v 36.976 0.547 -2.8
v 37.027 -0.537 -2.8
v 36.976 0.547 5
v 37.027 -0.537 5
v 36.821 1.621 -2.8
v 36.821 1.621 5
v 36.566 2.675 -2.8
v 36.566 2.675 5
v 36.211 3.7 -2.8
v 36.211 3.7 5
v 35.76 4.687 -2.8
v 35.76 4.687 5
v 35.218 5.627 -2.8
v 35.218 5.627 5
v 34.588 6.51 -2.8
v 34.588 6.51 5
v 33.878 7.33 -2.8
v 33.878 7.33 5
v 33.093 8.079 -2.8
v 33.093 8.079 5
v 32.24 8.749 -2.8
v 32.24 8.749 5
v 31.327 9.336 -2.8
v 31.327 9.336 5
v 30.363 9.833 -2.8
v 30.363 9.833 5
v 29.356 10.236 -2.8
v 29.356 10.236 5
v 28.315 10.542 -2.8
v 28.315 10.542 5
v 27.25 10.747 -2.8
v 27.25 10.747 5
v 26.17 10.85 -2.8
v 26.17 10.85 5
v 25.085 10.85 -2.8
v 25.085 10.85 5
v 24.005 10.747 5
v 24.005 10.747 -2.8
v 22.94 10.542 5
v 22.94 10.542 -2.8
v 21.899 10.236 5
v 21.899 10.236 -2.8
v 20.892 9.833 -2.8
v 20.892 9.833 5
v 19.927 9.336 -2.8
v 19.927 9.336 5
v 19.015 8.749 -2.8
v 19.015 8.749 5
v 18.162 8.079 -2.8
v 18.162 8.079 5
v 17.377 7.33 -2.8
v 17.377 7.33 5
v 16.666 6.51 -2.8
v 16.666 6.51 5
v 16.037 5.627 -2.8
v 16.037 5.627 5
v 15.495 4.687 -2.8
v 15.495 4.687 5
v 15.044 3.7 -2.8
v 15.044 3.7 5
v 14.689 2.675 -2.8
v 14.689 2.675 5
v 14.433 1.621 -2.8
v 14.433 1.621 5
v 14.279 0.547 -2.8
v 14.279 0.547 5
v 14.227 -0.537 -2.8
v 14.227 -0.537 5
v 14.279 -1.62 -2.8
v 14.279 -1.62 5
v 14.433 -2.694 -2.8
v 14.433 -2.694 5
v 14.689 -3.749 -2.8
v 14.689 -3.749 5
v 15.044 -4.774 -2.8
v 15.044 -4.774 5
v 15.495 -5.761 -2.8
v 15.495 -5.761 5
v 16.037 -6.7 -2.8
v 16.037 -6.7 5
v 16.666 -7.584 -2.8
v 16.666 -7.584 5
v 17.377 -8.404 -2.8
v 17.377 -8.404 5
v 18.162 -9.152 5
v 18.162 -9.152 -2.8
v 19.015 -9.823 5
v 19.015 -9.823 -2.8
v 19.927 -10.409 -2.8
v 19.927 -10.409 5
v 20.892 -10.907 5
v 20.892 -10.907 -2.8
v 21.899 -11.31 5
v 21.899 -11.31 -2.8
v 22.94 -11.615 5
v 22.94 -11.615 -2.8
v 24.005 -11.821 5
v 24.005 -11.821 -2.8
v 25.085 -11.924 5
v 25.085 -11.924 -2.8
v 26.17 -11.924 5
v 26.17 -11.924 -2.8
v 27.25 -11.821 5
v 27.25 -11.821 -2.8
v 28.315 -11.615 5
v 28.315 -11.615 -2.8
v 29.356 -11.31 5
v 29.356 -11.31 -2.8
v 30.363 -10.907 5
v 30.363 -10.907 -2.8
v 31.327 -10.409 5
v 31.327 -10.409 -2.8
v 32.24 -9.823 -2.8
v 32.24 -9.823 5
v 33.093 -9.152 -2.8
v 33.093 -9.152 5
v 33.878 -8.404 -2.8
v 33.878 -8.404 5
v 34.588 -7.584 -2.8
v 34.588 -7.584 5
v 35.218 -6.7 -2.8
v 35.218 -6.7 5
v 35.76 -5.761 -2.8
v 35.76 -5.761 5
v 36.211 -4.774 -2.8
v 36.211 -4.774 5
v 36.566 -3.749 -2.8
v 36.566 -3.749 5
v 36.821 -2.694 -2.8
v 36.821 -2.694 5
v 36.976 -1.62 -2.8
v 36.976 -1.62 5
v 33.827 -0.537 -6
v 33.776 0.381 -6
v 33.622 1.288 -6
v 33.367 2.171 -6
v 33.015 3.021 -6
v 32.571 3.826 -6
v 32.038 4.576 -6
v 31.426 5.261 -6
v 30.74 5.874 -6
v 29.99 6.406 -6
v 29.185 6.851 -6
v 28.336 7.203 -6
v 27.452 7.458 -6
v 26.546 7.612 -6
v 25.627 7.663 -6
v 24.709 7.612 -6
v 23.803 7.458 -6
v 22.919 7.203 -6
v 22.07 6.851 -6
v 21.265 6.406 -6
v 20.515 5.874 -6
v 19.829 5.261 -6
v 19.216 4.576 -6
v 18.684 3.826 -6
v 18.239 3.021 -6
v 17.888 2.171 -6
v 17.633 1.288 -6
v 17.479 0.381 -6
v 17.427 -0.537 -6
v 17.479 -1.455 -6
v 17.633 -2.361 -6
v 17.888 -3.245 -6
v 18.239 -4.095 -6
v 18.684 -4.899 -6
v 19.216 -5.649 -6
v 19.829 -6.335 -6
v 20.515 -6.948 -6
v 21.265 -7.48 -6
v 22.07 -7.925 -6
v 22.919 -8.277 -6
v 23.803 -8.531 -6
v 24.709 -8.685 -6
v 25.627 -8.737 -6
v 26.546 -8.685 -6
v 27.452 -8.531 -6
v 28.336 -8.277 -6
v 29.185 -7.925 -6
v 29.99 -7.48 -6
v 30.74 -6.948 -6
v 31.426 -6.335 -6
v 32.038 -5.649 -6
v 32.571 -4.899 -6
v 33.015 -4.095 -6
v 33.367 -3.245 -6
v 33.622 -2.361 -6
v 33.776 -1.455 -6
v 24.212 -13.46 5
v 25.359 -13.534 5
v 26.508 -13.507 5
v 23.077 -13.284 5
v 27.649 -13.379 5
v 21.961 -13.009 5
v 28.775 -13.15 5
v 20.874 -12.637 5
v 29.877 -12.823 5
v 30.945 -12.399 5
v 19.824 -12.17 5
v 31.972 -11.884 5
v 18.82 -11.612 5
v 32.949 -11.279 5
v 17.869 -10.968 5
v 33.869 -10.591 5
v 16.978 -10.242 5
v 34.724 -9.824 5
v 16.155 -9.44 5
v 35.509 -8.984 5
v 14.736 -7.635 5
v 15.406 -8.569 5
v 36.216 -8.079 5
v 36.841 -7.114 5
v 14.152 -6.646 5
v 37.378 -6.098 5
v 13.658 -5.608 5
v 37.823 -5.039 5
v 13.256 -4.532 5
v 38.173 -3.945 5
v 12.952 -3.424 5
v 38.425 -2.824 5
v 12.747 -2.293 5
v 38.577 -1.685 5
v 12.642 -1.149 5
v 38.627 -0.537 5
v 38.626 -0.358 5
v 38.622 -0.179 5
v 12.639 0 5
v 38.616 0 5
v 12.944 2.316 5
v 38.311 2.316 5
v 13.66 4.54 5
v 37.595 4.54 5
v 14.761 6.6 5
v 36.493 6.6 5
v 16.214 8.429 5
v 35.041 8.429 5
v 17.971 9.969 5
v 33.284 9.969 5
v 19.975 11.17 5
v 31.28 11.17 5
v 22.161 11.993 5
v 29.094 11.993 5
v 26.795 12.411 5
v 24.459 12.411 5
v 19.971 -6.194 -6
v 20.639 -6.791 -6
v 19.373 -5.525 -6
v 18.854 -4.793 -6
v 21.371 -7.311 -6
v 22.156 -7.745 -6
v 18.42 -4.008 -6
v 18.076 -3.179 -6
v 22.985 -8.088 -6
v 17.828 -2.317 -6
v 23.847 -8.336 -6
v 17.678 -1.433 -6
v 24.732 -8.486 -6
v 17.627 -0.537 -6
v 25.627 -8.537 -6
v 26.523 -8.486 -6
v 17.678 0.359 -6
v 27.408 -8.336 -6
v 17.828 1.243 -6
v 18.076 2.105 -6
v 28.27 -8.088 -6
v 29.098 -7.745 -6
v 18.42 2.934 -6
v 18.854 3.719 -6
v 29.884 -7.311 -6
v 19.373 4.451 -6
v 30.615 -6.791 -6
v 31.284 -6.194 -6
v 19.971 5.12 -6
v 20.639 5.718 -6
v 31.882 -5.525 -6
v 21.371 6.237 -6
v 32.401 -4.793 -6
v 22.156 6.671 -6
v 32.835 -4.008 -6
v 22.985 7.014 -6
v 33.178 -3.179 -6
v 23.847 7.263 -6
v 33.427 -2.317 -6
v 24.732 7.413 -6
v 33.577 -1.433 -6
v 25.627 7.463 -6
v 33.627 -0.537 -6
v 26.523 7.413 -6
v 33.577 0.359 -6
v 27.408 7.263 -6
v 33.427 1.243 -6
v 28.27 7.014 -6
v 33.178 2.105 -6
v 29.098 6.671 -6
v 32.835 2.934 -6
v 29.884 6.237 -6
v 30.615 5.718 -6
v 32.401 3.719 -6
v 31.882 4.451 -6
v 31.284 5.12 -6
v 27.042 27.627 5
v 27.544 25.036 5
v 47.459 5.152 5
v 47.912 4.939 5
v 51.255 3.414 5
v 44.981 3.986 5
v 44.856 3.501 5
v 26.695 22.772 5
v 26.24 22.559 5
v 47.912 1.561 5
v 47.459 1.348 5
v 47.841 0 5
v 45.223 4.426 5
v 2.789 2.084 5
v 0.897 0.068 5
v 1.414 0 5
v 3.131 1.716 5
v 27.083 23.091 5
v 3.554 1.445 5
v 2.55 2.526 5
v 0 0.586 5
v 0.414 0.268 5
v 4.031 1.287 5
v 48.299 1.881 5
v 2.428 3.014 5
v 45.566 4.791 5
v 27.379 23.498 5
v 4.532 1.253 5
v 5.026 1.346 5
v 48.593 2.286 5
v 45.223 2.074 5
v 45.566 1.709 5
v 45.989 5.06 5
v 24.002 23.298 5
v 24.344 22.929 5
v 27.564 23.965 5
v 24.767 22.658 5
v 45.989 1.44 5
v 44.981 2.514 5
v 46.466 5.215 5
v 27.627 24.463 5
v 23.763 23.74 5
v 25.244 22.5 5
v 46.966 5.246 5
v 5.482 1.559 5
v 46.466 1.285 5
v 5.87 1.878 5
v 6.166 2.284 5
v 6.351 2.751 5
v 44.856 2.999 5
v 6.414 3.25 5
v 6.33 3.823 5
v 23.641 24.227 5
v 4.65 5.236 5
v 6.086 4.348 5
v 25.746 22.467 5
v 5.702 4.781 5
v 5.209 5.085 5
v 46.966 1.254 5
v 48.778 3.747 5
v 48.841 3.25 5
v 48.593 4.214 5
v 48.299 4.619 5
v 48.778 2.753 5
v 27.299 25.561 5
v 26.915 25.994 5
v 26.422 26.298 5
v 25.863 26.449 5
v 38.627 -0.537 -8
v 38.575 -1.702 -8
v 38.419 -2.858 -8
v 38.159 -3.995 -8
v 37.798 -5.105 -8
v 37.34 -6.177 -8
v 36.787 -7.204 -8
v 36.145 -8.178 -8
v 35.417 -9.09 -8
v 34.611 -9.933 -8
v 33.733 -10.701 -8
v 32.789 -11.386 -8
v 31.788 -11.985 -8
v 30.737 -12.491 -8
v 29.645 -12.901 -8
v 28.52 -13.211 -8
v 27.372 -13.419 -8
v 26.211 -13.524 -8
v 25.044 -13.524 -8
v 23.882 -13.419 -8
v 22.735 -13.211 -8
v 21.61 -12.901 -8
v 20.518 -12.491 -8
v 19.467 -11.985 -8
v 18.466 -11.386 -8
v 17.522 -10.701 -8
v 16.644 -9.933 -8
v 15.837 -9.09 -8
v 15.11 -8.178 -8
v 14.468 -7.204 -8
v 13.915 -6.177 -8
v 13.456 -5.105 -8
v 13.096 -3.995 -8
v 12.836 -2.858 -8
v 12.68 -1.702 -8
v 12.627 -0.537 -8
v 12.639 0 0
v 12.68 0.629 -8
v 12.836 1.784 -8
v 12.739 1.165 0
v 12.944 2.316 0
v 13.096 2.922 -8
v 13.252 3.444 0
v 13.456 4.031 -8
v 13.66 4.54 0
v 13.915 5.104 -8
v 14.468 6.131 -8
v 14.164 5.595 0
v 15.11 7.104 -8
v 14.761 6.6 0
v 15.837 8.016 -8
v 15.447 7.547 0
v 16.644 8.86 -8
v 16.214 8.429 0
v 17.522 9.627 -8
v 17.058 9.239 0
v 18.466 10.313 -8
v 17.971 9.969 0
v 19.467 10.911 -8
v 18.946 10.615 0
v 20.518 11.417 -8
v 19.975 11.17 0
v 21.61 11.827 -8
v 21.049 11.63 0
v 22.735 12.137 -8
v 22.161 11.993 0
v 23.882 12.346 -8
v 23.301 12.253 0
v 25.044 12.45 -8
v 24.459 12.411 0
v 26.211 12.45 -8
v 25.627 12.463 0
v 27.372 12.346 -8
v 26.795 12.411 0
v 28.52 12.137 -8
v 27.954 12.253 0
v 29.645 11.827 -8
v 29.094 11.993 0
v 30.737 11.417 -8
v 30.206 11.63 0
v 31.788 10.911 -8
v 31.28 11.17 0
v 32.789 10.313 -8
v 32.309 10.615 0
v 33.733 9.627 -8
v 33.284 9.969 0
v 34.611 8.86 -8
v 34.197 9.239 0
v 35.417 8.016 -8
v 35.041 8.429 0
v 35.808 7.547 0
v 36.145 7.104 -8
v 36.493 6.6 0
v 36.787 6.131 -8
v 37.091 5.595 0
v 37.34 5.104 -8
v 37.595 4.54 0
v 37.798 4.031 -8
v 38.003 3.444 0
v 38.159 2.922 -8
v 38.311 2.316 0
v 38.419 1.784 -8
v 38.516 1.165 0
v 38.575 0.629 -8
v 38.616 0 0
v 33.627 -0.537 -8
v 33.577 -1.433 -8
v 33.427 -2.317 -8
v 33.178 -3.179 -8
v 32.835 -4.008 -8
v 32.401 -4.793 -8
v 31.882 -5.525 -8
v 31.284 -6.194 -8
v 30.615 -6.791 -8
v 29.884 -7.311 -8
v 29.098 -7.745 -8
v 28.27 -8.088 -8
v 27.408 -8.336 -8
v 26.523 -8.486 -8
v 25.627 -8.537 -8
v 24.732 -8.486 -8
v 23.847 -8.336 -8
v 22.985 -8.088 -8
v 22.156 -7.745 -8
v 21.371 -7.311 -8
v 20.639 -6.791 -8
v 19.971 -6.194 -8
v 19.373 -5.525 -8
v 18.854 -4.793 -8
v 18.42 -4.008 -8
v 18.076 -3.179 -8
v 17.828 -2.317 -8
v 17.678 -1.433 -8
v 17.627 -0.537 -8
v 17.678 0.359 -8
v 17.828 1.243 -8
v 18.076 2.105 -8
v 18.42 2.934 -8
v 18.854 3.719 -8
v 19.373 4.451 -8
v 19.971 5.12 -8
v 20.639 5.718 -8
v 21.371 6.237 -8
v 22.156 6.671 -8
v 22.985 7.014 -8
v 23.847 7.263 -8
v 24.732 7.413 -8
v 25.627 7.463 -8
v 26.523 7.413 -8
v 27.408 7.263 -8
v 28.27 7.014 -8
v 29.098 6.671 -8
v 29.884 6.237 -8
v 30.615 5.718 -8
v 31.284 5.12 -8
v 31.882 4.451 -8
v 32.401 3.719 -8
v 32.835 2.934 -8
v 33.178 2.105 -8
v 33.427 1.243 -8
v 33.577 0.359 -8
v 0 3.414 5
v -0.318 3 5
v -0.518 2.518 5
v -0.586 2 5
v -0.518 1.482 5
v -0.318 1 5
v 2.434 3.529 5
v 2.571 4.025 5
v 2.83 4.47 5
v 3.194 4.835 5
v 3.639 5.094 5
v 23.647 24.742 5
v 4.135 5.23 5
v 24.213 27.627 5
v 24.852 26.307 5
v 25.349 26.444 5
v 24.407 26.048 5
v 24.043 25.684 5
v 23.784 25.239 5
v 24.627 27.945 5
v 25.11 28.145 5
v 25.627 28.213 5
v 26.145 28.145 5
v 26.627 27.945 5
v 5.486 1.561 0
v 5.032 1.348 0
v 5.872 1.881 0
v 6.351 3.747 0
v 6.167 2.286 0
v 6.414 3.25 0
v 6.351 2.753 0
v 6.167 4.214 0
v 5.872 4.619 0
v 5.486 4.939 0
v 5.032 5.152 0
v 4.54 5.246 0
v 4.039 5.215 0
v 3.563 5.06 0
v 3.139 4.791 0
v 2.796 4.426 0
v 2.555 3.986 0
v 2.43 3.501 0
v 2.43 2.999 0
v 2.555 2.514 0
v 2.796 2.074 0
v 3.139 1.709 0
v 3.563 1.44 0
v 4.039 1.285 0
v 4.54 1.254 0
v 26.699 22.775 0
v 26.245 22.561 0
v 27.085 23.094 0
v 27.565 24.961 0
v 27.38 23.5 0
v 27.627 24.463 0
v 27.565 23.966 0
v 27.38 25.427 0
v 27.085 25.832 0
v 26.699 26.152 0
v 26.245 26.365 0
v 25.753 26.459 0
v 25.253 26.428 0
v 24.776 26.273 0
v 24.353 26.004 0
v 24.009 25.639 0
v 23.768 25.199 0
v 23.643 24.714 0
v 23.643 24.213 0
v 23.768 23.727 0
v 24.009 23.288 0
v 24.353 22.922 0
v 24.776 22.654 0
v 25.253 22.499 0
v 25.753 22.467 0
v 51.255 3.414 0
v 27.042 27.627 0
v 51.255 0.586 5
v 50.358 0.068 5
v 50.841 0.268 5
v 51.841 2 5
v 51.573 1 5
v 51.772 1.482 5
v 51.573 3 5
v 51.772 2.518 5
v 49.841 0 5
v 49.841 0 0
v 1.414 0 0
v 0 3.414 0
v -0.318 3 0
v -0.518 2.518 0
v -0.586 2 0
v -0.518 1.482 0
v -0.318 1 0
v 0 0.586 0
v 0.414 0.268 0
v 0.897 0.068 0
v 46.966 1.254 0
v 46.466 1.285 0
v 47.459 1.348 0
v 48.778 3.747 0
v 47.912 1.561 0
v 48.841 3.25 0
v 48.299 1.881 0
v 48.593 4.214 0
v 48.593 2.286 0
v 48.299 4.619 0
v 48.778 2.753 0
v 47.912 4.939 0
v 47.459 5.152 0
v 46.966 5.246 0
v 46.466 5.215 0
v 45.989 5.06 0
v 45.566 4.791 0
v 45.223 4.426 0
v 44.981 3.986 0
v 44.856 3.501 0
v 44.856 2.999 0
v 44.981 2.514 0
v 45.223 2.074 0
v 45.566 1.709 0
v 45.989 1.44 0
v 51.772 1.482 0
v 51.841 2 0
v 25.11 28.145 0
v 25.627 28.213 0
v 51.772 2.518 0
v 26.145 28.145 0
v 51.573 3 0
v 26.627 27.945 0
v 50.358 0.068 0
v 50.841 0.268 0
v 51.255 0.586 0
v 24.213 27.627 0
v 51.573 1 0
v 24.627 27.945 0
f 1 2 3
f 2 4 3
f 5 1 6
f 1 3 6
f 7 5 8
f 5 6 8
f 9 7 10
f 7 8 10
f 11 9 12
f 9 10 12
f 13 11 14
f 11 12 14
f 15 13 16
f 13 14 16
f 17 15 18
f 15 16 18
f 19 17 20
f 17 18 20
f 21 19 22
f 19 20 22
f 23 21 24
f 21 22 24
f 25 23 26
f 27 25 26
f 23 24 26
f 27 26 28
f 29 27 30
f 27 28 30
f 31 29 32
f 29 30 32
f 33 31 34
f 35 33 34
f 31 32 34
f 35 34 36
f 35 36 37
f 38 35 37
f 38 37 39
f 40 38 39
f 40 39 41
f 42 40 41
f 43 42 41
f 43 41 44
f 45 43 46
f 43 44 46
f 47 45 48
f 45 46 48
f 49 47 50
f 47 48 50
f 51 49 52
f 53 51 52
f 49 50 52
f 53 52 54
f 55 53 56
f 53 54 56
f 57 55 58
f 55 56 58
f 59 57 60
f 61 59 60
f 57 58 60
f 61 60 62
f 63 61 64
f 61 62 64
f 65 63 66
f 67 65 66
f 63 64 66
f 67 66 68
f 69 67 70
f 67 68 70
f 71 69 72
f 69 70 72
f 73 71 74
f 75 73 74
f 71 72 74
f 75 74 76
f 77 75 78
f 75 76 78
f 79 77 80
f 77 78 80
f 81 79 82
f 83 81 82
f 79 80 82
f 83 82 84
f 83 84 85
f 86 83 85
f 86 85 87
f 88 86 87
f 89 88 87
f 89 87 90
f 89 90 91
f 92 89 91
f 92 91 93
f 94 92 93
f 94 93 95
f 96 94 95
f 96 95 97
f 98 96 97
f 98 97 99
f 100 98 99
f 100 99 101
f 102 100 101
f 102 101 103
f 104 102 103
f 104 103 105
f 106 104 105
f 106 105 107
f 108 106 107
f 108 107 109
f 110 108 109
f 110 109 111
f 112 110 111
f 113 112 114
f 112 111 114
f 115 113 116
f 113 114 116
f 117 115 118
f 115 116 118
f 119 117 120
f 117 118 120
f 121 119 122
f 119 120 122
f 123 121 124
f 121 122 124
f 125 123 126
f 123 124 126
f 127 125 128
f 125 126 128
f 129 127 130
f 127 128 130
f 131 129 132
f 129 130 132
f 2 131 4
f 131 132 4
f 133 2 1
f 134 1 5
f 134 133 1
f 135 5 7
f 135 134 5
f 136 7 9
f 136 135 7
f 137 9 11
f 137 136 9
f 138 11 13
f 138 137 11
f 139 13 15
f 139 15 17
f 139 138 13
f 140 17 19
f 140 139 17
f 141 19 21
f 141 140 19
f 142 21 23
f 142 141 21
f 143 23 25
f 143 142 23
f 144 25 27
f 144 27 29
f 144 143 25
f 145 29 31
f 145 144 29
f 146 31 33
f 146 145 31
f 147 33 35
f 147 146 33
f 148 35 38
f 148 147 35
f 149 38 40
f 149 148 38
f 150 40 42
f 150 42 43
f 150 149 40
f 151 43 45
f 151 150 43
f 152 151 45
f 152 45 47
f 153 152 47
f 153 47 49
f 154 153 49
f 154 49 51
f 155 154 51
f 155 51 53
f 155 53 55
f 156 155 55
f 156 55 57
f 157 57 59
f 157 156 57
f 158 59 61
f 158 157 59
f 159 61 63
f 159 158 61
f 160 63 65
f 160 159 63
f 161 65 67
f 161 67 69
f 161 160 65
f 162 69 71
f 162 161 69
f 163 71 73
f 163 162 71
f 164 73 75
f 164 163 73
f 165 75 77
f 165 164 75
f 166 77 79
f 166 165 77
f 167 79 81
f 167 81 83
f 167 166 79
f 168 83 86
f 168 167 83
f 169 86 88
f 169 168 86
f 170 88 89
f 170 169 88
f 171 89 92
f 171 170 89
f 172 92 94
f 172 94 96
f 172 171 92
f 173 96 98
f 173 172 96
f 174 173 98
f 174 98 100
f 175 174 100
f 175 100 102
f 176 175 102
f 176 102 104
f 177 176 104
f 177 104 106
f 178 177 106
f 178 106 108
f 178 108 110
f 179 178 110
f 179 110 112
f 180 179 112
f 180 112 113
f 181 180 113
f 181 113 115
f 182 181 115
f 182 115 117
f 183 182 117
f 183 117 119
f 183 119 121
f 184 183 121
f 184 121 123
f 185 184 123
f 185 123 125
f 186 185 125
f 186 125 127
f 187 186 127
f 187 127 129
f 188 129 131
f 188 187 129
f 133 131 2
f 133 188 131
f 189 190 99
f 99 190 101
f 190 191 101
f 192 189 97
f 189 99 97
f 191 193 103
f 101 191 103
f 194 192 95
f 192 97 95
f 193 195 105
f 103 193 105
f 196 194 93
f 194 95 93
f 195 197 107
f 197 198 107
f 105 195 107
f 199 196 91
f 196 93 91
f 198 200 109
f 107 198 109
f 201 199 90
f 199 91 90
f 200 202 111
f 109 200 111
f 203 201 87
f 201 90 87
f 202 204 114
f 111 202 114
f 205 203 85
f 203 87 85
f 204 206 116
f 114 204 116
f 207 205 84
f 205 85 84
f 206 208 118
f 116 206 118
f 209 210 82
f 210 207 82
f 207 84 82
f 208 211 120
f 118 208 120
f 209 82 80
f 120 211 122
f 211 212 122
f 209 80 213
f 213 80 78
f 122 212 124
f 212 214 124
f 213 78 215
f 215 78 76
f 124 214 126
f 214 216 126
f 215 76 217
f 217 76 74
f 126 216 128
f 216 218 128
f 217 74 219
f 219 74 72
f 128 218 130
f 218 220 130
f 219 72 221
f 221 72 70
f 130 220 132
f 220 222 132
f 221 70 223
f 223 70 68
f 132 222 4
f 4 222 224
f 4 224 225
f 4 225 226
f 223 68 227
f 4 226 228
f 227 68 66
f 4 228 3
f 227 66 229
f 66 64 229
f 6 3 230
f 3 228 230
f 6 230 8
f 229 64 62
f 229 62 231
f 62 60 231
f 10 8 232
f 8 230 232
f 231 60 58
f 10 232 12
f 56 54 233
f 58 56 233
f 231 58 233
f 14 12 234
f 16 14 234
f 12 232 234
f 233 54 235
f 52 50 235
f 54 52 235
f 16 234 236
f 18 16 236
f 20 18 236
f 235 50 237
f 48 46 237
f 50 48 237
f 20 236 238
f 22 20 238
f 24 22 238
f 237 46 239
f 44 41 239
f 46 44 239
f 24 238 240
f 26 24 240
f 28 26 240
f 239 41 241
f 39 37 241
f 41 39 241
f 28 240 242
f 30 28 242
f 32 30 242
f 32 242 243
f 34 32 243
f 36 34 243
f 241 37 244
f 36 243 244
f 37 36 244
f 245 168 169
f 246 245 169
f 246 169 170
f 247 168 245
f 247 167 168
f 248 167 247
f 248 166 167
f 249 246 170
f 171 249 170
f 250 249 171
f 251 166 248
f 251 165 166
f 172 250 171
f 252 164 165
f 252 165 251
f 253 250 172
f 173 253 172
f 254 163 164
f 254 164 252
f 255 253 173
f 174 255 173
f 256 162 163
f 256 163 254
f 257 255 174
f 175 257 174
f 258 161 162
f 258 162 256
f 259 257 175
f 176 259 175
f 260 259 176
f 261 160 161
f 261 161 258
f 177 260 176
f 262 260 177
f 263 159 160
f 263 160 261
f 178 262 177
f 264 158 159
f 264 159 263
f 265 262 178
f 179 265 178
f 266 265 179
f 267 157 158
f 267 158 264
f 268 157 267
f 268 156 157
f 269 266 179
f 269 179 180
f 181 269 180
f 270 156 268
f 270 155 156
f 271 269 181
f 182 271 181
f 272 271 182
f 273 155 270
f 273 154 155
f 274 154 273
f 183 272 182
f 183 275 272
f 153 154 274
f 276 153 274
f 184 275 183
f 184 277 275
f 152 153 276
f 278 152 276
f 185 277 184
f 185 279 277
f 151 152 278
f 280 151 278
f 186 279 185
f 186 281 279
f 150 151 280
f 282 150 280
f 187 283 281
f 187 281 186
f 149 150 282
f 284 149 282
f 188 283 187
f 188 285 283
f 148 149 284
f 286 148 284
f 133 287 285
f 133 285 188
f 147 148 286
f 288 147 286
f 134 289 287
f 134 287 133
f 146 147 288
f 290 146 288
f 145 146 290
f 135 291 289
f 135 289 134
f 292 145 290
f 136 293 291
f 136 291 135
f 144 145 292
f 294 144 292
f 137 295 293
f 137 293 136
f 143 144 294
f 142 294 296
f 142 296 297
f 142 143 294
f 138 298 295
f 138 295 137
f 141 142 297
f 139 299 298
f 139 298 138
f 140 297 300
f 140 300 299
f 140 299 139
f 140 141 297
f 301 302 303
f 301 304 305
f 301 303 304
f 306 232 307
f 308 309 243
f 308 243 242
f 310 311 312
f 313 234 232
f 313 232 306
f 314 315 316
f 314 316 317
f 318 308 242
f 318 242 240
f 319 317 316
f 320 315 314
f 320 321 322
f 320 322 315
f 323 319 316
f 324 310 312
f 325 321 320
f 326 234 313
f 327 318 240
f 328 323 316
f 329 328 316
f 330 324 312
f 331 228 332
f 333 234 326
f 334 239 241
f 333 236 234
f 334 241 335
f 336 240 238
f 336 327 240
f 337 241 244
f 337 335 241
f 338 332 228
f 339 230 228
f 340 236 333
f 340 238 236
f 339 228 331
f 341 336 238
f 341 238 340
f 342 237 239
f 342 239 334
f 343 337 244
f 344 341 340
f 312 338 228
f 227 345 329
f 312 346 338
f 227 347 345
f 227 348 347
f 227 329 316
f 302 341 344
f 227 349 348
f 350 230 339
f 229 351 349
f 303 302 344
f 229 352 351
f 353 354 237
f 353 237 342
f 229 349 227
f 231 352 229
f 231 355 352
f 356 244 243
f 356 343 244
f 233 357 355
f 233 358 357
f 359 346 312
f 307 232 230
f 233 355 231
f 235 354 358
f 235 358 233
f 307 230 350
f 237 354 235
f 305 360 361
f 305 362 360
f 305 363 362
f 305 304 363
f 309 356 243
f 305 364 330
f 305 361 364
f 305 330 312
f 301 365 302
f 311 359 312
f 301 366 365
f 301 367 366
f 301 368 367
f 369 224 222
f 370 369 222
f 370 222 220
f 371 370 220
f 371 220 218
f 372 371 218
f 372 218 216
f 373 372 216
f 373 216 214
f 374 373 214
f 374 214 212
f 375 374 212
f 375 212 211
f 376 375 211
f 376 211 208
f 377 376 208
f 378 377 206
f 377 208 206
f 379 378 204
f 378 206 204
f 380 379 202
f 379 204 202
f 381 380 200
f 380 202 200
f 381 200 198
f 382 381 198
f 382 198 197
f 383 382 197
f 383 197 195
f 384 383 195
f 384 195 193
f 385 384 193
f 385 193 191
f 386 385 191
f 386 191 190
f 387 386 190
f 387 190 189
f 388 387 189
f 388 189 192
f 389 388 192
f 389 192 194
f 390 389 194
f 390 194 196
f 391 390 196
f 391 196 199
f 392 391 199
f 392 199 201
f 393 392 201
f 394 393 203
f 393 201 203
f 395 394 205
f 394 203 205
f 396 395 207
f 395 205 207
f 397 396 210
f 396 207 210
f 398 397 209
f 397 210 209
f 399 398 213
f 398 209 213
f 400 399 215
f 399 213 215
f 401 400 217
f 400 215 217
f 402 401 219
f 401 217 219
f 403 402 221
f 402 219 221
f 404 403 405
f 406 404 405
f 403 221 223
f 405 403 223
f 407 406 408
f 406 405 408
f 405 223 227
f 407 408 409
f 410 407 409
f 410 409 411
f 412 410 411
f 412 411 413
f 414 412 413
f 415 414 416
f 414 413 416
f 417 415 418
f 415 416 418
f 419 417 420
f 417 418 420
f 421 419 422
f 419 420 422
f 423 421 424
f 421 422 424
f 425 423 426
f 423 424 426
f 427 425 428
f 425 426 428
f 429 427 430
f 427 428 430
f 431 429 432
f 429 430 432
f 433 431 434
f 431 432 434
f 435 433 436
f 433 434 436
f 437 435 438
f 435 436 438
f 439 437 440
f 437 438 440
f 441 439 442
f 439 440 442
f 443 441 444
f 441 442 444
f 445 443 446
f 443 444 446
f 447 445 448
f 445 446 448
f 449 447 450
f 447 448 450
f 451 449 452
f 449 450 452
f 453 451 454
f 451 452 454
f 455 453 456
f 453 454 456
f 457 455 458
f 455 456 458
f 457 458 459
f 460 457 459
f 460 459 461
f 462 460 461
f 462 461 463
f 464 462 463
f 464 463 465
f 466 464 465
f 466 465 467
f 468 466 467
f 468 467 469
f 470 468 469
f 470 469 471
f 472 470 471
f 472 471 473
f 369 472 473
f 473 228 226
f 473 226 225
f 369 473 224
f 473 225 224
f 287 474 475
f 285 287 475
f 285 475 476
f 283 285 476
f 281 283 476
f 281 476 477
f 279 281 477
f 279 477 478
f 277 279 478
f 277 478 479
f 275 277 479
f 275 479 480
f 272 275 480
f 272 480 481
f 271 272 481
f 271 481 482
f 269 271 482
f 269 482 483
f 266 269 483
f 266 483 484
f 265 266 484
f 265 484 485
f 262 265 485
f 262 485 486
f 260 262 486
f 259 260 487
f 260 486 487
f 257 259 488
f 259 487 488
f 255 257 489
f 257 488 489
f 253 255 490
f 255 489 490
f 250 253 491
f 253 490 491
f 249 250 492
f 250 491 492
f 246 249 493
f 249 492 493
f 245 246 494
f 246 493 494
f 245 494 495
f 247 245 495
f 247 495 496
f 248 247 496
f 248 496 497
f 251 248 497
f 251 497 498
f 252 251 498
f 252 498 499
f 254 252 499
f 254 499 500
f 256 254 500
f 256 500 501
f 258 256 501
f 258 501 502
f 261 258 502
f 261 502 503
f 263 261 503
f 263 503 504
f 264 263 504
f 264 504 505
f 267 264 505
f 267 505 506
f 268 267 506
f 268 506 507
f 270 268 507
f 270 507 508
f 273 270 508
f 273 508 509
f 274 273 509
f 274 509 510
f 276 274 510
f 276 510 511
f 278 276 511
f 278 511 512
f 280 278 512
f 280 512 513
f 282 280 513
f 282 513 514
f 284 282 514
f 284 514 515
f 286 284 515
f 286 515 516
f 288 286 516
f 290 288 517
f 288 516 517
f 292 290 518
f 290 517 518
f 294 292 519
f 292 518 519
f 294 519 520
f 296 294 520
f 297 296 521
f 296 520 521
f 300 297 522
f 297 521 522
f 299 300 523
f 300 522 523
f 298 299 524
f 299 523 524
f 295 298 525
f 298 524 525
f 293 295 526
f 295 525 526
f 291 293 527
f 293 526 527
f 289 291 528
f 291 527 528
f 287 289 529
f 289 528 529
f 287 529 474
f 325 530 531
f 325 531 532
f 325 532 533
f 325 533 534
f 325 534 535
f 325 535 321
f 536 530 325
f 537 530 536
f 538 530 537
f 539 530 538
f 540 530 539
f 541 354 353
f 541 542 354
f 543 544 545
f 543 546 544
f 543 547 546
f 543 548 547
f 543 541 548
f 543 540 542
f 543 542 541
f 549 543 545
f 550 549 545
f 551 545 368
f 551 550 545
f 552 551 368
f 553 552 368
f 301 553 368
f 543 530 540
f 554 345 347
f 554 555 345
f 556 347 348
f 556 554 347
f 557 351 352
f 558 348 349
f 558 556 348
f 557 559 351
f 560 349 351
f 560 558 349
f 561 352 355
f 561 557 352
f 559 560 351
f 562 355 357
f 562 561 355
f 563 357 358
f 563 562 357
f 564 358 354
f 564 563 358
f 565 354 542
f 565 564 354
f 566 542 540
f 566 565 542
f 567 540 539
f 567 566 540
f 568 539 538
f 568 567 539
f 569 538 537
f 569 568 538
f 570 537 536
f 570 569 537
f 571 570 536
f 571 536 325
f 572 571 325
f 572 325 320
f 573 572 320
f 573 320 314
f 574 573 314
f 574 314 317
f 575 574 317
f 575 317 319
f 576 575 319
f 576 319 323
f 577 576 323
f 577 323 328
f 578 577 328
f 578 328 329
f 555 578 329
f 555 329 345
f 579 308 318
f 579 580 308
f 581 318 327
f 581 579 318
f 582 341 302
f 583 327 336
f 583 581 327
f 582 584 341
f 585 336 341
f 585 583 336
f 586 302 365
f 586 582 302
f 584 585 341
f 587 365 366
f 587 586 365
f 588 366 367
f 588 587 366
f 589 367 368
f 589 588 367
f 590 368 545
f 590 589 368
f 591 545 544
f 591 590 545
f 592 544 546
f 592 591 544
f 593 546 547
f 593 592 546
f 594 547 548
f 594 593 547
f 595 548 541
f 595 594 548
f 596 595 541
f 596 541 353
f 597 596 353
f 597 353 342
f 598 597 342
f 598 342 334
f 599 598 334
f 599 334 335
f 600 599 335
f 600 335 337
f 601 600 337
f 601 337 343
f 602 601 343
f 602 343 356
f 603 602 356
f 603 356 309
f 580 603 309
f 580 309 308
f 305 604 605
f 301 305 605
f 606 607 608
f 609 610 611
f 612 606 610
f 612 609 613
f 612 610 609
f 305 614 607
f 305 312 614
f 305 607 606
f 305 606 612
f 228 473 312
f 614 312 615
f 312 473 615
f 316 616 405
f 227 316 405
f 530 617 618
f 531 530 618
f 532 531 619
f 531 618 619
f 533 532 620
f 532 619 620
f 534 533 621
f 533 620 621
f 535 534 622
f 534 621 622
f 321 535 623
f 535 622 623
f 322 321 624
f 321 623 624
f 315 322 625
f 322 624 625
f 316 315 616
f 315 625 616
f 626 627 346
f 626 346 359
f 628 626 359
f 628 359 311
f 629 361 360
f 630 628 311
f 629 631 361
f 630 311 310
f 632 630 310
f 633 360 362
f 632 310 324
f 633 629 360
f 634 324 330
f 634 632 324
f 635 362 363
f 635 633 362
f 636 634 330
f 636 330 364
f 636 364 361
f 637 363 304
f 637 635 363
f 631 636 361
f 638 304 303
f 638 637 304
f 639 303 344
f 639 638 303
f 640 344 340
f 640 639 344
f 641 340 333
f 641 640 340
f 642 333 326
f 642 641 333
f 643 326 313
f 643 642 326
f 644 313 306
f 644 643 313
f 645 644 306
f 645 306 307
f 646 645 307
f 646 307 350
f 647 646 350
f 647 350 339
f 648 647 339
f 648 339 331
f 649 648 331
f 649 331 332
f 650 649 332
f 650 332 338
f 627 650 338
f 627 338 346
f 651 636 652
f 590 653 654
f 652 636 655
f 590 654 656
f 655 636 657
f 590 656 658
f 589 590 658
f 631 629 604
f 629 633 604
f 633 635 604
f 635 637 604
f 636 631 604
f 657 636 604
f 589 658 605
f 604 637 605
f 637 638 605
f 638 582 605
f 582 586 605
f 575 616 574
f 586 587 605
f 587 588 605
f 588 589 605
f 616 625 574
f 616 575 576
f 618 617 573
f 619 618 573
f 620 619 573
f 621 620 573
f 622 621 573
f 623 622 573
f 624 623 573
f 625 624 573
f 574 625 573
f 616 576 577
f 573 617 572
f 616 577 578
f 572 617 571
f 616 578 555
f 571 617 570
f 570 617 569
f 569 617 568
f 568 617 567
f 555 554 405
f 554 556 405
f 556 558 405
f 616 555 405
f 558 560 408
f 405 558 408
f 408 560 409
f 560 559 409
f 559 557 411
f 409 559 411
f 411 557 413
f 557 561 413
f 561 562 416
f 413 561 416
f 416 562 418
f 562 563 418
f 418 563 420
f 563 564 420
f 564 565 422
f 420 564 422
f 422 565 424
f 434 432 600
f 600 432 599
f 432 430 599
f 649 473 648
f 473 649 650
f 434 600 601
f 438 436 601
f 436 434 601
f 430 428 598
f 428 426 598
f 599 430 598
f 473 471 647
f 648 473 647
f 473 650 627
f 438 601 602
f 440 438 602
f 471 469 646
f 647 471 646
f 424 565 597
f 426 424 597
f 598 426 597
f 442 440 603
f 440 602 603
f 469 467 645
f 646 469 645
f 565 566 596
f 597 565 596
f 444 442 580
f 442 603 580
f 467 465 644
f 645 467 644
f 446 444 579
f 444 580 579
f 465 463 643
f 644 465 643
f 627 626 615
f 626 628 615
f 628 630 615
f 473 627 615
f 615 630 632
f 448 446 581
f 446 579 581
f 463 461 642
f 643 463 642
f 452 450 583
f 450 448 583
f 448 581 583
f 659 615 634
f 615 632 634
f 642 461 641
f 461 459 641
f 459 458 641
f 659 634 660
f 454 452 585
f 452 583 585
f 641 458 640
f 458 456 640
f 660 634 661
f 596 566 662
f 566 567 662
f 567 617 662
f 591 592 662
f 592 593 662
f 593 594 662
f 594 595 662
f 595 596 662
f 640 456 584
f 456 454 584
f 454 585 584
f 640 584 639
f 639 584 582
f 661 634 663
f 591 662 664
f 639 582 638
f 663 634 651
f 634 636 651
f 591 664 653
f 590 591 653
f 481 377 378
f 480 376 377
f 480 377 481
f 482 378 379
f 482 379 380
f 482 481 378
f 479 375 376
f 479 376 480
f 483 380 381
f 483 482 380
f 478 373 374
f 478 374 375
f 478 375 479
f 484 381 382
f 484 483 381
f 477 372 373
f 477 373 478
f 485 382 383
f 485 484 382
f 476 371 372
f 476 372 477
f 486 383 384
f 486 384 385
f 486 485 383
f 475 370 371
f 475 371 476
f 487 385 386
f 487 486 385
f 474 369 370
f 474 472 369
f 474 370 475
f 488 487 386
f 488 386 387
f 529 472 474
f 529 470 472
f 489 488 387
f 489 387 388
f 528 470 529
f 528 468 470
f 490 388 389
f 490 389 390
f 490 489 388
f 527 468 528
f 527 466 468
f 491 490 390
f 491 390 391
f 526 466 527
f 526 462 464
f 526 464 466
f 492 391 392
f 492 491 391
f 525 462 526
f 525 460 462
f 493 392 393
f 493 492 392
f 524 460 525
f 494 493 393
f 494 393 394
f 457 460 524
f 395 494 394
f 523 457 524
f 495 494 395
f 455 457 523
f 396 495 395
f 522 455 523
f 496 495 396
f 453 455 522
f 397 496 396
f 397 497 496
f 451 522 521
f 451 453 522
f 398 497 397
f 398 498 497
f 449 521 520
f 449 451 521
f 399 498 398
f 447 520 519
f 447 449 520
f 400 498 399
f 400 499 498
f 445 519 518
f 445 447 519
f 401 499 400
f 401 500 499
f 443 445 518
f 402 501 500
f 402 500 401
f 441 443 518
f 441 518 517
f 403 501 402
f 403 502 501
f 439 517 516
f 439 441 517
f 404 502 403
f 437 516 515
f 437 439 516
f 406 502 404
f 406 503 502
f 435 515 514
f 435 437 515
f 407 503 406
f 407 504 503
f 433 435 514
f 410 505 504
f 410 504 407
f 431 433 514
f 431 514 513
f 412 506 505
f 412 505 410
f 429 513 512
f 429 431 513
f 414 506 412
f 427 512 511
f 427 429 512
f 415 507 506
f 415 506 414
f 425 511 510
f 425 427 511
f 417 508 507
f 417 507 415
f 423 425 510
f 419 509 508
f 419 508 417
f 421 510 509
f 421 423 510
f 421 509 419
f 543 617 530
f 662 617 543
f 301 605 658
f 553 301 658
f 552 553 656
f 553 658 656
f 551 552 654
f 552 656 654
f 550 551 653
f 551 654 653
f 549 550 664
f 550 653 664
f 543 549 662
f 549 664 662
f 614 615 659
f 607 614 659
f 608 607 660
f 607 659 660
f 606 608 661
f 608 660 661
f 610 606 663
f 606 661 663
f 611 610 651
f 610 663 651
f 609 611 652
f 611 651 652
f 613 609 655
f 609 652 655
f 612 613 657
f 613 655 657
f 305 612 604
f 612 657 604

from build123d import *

# Parameters (mm, degrees)
SKETCH_R        = 2
PAD_DEPTH       = 5
SKETCH001_R     = 13
PAD001_DEPTH    = 8
SKETCH002_R     = 8
POCKET_DEPTH    = 16.001
SKETCH003_W     = 34.242641
SKETCH003_H     = 4
POCKET001_DEPTH = 48.644028
SKETCH004_R     = 11.4
POCKET002_DEPTH = 11
CHAMFER_SIZE    = 3.2


with BuildPart() as part:
    # Sketch → Pad (new body)
    with BuildSketch(Plane.XY):
        with BuildLine():
            Line((1.414214, 0), (49.84062, 0))
            ThreePointArc((49.84062, 0), (51.688379, 1.234633), (51.254834, 3.414214))
            Line((51.254834, 3.414214), (27.041631, 27.627417))
            ThreePointArc((27.041631, 27.627417), (25.627417, 28.213203), (24.213203, 27.627417))
            Line((0, 3.414214), (24.213203, 27.627417))
            ThreePointArc((0, 3.414214), (-0.433546, 1.234633), (1.414214, 0))
        make_face()
        with Locations((4.414214, 3.25)):
            Circle(SKETCH_R, mode=Mode.SUBTRACT)
        with Locations((46.84062, 3.25)):
            Circle(SKETCH_R, mode=Mode.SUBTRACT)
        with Locations((25.627417, 24.463203)):
            Circle(SKETCH_R, mode=Mode.SUBTRACT)
    extrude(amount=PAD_DEPTH)

    # Sketch001 (on Face10 of Pad) → Pad001 (join, symmetric)
    with BuildSketch(Plane(origin=(0, 0, 0), x_dir=(1, 0, 0), z_dir=(0, 0, -1))):
        with Locations((25.627417, 0.536797)):
            Circle(SKETCH001_R)
    extrude(amount=PAD001_DEPTH, both=True)

    # Sketch002 (on Face15 of Pad001) → Pocket (cut, through all)
    with BuildSketch(Plane(origin=(0, 0, -8), x_dir=(1, 0, 0), z_dir=(0, 0, -1))):
        with Locations((25.627417, 0.536797)):
            Circle(SKETCH002_R)
    extrude(amount=-POCKET_DEPTH, mode=Mode.SUBTRACT)

    # Sketch003 (on Face8 of Pocket) → Pocket001 (cut, through all)
    with BuildSketch(Plane(origin=(27.334524, 27.334524, 0), x_dir=(-0.707107, 0.707107, 0), z_dir=(0.707107, 0.707107, 0))):
        with Locations((-16.707106, 7)):
            Rectangle(SKETCH003_W, SKETCH003_H)
    extrude(amount=-POCKET001_DEPTH, mode=Mode.SUBTRACT)

    # Sketch004 (on Face6 of Pocket001) → Pocket002 (cut)
    with BuildSketch(Plane.XY.offset(5)):
        with Locations((25.627417, -0.536797)):
            Circle(SKETCH004_R)
    extrude(amount=-POCKET002_DEPTH, mode=Mode.SUBTRACT)

    # Chamfer
    chamfer_edges = [part.edges().sort_by_distance(p)[0] for p in [
        (14.227417, -0.536797, -6),
    ]]
    chamfer(chamfer_edges, length=CHAMFER_SIZE)


solid = part.part
